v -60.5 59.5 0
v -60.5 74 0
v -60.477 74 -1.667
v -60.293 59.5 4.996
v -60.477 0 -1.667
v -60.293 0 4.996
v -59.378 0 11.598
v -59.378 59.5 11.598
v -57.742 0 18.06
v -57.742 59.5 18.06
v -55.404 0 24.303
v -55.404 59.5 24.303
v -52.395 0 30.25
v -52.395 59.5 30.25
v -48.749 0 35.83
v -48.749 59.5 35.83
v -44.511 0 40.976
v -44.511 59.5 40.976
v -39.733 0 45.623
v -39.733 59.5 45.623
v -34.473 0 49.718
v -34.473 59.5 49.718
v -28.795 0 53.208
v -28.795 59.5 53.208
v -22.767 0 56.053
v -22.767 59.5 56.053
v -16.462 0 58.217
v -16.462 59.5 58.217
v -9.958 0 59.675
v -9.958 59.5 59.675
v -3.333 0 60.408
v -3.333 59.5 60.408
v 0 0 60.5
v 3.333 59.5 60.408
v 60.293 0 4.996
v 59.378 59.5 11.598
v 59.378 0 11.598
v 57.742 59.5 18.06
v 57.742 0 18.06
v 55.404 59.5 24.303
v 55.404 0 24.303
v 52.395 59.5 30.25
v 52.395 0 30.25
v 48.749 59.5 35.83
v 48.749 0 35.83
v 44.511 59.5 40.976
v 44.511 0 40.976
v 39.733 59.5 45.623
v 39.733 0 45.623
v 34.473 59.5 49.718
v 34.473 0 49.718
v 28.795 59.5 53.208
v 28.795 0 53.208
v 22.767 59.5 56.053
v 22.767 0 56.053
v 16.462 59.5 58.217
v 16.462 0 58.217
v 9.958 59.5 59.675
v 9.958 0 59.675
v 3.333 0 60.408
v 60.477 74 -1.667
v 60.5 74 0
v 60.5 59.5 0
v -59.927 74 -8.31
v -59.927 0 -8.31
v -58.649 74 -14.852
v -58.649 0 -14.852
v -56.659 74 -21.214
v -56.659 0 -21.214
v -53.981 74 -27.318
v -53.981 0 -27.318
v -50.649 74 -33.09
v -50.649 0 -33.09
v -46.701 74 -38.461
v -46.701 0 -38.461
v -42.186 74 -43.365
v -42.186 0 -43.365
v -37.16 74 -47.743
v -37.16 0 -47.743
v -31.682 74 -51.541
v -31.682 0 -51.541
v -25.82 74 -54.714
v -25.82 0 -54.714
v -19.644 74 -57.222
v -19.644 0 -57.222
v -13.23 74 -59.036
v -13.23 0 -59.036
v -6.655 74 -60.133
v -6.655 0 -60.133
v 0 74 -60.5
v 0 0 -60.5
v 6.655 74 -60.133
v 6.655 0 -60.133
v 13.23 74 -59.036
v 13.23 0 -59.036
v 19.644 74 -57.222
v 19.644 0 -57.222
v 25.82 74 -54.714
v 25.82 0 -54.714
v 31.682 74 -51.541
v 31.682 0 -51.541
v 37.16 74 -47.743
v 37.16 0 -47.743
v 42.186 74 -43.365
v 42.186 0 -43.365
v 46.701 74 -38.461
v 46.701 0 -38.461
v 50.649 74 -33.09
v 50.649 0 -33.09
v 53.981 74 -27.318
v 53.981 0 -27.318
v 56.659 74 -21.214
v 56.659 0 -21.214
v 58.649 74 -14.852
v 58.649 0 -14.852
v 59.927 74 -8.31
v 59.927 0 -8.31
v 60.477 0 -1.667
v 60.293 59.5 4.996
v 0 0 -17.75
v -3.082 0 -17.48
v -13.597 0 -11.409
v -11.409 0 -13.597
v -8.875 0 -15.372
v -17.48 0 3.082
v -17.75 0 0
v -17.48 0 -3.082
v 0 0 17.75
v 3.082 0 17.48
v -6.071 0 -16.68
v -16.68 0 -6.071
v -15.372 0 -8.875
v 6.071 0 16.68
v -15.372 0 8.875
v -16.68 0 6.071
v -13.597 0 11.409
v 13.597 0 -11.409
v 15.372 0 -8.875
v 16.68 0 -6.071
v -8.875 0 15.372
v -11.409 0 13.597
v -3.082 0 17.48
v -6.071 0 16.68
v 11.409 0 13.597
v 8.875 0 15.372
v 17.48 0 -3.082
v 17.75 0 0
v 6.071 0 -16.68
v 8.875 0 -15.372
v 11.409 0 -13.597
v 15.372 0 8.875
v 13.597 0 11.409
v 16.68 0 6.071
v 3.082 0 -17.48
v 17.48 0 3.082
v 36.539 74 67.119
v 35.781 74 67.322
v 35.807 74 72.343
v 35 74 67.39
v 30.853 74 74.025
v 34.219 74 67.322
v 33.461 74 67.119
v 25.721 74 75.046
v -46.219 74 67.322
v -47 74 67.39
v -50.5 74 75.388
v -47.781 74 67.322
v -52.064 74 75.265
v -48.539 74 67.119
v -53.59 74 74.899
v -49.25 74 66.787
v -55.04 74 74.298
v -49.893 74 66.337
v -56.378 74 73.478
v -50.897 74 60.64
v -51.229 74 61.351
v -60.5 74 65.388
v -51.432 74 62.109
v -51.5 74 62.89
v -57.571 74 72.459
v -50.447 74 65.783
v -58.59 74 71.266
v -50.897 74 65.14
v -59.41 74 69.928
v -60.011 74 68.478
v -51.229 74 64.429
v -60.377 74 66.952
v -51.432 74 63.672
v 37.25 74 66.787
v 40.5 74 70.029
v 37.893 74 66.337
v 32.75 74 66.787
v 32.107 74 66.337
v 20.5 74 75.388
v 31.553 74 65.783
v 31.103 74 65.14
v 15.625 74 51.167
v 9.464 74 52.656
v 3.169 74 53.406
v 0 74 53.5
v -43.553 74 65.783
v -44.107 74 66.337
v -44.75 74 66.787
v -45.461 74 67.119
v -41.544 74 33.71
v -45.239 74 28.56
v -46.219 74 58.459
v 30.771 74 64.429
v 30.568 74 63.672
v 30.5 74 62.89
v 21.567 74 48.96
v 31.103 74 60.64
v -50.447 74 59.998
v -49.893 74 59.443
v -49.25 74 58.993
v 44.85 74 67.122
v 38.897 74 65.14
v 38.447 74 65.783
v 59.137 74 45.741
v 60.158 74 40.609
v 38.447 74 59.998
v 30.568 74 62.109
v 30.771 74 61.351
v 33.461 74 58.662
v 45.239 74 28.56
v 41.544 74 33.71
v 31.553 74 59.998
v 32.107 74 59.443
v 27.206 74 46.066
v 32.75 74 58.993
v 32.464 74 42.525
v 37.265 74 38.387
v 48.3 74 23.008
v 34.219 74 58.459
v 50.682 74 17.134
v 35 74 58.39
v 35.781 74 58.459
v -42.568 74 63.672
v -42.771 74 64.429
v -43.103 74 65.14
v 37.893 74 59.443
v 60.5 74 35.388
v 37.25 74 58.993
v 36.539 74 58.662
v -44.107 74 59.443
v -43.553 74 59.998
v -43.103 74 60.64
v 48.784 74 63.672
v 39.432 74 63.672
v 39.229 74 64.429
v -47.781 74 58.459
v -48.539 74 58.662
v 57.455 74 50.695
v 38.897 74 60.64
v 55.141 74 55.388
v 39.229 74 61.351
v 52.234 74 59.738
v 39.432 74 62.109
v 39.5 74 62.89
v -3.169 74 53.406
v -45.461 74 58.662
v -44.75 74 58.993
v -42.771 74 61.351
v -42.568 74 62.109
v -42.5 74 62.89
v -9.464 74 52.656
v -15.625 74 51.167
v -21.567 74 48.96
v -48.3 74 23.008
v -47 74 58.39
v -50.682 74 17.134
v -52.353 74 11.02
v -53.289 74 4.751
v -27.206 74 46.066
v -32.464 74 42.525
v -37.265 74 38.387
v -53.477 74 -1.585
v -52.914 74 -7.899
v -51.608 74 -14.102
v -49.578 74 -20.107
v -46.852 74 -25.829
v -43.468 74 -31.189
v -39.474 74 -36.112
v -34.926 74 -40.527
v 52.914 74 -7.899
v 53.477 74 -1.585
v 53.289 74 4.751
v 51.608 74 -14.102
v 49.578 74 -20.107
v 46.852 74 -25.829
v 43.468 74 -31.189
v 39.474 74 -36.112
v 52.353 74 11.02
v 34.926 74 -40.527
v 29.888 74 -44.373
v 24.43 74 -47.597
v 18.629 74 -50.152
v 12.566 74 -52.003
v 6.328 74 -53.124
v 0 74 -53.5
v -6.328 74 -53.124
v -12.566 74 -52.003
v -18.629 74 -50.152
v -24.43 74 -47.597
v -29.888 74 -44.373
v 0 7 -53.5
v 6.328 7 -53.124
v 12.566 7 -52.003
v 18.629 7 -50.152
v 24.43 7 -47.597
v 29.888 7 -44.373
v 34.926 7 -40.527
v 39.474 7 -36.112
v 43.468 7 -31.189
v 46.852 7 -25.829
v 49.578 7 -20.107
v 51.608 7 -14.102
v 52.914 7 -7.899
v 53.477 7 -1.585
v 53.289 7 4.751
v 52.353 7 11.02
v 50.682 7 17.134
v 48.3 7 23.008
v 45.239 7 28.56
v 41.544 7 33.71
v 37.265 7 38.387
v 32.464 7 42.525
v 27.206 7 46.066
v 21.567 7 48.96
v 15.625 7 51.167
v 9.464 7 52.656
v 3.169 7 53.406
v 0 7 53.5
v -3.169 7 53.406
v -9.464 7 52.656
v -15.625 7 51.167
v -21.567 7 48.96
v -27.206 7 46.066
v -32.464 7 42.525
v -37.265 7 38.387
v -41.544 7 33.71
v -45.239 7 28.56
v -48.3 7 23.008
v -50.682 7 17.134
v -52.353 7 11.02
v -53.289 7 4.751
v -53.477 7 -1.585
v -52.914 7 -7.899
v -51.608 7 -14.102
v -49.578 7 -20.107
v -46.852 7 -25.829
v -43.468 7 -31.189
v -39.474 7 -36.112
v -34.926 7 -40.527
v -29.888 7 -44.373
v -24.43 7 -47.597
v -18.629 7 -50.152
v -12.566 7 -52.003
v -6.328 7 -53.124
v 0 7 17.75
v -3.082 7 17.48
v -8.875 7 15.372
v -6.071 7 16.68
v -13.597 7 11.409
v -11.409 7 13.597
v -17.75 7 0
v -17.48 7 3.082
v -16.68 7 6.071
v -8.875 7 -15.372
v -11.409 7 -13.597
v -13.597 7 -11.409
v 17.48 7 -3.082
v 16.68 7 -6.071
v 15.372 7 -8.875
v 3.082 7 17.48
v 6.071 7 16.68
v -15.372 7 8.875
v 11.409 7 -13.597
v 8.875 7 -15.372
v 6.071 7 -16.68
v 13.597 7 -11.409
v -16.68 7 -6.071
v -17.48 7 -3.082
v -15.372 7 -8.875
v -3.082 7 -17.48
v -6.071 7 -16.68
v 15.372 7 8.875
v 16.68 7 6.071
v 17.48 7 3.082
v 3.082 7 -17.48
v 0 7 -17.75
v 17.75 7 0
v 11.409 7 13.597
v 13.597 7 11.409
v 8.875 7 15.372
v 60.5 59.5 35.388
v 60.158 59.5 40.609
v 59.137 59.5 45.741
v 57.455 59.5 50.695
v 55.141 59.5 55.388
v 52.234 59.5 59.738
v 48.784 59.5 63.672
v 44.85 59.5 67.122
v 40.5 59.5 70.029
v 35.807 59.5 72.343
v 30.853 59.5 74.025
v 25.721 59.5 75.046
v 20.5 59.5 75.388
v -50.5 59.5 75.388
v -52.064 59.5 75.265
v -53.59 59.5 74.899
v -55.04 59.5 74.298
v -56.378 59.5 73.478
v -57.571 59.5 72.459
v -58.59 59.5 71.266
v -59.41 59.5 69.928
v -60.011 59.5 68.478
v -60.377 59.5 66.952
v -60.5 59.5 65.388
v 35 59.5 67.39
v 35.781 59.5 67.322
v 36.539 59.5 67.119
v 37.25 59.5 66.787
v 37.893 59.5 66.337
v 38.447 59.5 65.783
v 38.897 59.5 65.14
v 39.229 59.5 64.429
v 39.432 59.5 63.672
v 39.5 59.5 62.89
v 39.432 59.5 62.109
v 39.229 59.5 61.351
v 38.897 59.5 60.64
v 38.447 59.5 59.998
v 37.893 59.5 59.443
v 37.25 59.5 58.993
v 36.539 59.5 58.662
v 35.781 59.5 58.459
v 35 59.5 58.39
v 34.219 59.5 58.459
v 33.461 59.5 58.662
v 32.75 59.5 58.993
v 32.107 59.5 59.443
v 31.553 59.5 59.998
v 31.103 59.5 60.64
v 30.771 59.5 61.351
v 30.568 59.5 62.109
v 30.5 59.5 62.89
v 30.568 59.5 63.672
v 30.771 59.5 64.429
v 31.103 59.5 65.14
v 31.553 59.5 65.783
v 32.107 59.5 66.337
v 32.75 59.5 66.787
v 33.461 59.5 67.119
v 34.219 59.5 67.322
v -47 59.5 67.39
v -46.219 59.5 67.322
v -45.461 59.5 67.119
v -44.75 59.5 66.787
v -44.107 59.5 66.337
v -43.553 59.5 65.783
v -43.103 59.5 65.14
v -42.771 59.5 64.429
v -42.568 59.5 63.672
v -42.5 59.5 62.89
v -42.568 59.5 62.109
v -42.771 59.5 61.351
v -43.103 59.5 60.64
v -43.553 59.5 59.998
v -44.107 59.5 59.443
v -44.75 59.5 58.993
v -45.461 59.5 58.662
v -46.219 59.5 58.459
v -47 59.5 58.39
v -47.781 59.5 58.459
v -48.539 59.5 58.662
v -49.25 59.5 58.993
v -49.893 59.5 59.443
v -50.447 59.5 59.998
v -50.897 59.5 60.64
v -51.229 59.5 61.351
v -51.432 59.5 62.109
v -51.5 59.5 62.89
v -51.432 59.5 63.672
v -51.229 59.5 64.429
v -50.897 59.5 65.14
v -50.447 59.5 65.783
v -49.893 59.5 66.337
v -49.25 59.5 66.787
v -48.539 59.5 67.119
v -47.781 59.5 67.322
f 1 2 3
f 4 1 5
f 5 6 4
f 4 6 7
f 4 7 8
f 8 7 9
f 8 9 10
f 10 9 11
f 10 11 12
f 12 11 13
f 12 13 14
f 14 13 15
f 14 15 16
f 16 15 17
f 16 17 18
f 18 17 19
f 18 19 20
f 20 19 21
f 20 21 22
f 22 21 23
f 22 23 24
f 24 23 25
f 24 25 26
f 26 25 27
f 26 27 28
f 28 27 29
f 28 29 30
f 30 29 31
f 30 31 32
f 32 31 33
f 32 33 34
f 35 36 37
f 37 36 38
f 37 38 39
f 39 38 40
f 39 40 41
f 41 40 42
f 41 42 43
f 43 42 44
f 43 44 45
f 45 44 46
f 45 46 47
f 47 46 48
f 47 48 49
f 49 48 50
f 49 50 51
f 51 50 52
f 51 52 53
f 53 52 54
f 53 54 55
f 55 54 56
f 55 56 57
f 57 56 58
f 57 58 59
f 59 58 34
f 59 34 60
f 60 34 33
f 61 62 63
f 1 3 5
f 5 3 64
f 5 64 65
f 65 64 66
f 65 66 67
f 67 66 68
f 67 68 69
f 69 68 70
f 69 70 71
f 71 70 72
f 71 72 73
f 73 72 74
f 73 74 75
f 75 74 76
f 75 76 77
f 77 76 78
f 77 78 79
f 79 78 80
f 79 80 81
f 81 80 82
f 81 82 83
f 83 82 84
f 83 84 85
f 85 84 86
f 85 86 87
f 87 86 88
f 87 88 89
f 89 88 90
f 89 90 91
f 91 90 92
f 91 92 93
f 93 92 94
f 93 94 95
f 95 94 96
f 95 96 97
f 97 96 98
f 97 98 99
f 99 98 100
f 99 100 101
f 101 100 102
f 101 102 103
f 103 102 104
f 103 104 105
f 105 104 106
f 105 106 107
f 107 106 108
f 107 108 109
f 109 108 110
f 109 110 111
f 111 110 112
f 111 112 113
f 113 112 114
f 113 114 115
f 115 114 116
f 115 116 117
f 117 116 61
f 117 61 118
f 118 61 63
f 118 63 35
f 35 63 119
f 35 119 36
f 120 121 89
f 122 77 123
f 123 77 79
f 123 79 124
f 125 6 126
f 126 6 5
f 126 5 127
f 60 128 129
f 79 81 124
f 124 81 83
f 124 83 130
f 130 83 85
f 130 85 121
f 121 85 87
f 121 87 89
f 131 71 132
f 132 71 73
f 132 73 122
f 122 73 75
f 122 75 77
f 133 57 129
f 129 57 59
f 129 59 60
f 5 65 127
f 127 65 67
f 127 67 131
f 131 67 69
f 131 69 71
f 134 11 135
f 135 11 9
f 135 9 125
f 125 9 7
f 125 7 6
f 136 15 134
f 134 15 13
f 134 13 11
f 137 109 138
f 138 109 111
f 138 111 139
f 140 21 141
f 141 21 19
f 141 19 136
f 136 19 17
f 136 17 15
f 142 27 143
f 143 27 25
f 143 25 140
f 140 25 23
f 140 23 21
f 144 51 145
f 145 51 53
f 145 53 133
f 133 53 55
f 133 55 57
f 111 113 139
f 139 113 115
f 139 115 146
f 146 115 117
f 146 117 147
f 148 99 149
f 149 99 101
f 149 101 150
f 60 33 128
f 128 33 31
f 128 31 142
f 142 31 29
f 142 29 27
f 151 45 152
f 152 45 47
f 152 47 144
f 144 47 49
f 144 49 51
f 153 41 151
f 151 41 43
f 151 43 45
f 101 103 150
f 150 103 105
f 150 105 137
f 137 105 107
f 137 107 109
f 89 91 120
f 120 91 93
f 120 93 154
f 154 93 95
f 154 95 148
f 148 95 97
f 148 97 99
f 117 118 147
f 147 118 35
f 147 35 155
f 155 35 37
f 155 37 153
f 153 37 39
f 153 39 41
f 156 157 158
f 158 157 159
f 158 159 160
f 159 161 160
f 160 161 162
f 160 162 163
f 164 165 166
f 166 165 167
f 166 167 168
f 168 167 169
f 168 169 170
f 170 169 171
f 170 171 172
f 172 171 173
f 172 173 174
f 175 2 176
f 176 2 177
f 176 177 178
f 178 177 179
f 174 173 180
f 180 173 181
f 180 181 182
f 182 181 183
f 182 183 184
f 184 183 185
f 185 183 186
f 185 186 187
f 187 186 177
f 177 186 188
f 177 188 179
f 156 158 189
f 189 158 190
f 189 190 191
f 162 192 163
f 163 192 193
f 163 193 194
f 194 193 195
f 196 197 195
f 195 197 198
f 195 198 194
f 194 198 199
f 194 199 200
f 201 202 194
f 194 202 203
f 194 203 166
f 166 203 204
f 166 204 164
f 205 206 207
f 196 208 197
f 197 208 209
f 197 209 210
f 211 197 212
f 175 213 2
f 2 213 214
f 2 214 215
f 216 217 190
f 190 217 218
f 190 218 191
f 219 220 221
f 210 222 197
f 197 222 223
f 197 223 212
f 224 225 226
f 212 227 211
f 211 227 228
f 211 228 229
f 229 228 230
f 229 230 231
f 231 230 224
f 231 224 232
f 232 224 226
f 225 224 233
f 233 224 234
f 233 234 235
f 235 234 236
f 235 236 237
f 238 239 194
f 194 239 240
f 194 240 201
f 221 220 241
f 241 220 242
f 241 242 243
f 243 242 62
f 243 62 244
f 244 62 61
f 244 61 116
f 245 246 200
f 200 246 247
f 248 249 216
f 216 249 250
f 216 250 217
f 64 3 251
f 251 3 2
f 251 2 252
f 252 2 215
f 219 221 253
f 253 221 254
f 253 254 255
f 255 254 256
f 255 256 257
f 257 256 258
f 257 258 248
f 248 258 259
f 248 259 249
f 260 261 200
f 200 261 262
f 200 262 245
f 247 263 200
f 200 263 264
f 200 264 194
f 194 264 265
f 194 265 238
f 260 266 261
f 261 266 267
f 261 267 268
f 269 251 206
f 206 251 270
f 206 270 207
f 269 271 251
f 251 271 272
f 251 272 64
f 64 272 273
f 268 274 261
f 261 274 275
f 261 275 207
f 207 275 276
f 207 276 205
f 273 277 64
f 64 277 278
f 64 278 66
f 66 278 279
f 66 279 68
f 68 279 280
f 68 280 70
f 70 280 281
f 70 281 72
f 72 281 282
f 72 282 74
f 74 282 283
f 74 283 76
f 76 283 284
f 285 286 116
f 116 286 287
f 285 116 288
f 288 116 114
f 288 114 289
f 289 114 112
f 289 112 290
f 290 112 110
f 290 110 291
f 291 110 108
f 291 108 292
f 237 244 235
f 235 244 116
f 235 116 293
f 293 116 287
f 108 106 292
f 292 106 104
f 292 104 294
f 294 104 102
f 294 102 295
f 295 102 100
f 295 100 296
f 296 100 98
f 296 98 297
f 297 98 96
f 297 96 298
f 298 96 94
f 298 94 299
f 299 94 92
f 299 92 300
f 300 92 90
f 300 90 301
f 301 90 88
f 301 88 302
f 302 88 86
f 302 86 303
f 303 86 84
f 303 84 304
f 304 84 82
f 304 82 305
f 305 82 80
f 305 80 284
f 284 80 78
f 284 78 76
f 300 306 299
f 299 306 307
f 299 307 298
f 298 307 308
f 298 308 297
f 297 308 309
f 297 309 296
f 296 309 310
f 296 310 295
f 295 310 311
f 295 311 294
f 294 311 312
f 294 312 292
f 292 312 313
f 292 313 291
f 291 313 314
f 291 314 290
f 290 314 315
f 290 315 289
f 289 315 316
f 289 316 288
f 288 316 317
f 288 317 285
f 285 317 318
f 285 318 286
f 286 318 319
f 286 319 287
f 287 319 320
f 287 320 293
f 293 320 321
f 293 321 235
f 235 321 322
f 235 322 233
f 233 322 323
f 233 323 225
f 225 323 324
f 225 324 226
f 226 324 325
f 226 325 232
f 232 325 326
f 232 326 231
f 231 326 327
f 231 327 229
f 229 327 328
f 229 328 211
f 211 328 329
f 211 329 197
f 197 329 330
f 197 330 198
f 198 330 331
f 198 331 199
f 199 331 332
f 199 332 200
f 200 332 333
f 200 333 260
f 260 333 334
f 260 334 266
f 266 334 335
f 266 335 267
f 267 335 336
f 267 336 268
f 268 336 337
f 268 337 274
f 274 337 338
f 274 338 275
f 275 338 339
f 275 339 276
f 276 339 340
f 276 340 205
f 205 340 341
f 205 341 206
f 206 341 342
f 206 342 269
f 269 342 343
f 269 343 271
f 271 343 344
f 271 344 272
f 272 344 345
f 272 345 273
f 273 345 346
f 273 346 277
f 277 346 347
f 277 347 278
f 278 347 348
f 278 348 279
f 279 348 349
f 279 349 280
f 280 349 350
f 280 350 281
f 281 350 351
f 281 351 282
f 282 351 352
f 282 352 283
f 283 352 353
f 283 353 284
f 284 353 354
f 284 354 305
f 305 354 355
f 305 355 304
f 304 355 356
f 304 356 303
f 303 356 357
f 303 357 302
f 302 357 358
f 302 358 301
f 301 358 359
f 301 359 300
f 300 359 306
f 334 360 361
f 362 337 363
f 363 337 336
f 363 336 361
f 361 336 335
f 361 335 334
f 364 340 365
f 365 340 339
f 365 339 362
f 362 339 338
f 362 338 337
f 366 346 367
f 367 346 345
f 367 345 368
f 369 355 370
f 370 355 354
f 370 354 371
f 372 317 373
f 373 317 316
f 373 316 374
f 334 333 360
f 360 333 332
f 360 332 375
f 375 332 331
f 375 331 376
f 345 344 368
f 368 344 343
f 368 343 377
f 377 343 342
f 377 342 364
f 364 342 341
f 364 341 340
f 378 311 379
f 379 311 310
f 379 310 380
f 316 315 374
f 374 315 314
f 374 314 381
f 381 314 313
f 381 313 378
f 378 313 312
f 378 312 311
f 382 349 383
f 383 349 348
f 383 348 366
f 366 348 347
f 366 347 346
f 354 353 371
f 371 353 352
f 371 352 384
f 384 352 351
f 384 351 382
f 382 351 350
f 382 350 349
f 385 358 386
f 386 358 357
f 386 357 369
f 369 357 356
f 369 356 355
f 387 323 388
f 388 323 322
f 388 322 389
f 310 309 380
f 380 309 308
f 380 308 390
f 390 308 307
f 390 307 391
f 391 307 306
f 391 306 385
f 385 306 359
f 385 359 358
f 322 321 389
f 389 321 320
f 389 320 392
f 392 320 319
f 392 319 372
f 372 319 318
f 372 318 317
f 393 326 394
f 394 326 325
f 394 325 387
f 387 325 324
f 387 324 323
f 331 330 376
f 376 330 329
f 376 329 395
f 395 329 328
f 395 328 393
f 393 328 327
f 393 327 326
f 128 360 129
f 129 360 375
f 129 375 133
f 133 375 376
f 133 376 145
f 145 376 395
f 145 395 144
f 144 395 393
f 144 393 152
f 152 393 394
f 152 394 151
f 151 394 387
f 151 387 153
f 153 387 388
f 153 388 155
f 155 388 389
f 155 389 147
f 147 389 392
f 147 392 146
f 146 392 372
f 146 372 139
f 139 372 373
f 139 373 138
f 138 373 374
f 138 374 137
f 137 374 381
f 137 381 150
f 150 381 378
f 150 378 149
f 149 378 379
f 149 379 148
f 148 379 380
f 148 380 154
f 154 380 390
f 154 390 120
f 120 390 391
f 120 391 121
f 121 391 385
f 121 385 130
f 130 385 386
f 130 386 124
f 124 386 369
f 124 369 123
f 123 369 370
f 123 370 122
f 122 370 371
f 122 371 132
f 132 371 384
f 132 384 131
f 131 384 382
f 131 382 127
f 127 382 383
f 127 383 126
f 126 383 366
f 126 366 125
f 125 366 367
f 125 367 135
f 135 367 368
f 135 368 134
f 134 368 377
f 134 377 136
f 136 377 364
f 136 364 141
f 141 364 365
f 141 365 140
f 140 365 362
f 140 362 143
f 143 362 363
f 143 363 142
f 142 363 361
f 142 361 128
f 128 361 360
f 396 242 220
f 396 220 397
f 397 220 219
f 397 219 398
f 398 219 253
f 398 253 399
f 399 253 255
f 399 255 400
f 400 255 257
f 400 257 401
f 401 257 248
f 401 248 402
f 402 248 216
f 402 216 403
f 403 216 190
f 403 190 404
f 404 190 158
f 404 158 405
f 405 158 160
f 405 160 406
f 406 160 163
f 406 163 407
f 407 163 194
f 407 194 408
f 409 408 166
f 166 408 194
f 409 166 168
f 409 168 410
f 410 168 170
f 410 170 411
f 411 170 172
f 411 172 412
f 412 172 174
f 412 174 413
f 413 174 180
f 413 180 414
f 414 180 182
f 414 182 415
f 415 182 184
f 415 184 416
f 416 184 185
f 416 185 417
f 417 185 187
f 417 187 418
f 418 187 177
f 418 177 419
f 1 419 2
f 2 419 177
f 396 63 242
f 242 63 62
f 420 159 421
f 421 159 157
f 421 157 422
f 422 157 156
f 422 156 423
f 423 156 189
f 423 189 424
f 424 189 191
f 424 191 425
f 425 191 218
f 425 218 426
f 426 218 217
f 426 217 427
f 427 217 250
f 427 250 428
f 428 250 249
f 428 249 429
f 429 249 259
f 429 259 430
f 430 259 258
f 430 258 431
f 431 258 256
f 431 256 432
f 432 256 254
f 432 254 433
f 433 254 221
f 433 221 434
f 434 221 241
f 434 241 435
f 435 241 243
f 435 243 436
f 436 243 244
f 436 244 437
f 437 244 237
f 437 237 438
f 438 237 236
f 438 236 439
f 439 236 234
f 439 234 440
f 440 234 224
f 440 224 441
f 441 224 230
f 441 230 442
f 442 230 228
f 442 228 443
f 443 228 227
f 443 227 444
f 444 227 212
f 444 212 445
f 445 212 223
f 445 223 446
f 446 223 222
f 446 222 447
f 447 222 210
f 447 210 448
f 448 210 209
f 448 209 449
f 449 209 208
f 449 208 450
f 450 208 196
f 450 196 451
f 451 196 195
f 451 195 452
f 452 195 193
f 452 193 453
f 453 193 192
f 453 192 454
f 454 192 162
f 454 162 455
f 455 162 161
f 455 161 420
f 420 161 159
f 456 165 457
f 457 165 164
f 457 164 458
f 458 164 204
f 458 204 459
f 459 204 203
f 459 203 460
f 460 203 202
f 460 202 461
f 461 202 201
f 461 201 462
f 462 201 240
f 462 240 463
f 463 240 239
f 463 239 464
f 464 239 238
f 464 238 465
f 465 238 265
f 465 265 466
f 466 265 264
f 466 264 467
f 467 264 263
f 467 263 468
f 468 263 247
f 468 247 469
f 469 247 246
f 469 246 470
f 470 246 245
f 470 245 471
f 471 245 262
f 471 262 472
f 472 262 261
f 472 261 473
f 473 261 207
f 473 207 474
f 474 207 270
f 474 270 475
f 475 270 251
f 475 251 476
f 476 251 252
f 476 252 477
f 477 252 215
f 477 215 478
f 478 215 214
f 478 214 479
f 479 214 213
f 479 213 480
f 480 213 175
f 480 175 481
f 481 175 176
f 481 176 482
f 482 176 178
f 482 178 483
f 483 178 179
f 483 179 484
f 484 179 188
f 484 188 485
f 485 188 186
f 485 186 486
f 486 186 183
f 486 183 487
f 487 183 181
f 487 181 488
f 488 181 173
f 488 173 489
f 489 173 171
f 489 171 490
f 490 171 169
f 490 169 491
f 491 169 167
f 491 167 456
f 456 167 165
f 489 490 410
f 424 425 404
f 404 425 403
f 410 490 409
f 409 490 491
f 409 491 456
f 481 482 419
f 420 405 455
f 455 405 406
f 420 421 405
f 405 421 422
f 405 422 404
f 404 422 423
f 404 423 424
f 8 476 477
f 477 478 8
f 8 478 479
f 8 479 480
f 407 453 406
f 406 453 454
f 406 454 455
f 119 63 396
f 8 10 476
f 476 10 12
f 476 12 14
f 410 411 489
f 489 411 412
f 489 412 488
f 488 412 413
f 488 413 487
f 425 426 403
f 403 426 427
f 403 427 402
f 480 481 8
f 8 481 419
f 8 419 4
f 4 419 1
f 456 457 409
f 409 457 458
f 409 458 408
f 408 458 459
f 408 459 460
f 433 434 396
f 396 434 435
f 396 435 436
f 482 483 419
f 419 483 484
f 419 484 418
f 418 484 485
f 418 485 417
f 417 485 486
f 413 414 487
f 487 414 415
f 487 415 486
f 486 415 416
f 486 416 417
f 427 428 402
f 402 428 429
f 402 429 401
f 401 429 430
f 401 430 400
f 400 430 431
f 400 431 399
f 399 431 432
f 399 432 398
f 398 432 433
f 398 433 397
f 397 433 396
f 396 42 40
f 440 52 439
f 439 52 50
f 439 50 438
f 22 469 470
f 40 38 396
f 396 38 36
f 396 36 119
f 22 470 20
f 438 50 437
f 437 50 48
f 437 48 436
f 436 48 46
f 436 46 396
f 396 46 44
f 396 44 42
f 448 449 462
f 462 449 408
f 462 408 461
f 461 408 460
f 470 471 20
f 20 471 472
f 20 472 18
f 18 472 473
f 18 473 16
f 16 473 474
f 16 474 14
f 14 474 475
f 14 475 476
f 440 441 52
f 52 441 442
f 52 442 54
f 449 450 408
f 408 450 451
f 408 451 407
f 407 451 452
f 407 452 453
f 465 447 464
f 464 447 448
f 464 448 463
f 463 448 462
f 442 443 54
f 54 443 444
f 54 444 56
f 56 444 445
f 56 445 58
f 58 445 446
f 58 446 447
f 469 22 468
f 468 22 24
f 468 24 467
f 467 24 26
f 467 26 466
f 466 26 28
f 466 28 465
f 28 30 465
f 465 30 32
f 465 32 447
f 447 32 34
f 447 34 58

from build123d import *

# Parameters (mm, degrees)
SKETCH_1_R          = 60.5
EXTRUDE_1_DEPTH     = 7
SKETCH_2_R          = 60.5
SKETCH_2_R_2        = 53.5
EXTRUDE_2_DEPTH     = 67
SKETCH_3_R          = 17.75
CUT_EXTRUDE_1_DEPTH = 54
SKETCH_6_R          = 4.5
EXTRUDE_3_DEPTH     = 14.5


with BuildPart() as part:
    # Эскиз1 → Бобышка-Вытянуть1 (new body)
    with BuildSketch(Plane(origin=(0, 0, 0), x_dir=(1, 0, 0), z_dir=(0, 1, 0))):
        Circle(SKETCH_1_R)
    extrude(amount=EXTRUDE_1_DEPTH)

    # Эскиз2 → Бобышка-Вытянуть2 (add)
    with BuildSketch(Plane(origin=(0, 7, 0), x_dir=(1, 0, 0), z_dir=(0, 1, 0))):
        Circle(SKETCH_2_R)
        Circle(SKETCH_2_R_2, mode=Mode.SUBTRACT)
    extrude(amount=EXTRUDE_2_DEPTH)

    # Эскиз3 → Вырез-Вытянуть1 (cut)
    with BuildSketch(Plane(origin=(0, 7, 0), x_dir=(1, 0, 0), z_dir=(0, 1, 0))):
        Circle(SKETCH_3_R)
    extrude(amount=-CUT_EXTRUDE_1_DEPTH, mode=Mode.SUBTRACT)

    # Эскиз6 → Бобышка-Вытянуть3 (add)
    with BuildSketch(Plane(origin=(0, 74, 0), x_dir=(1, 0, 0), z_dir=(0, 1, 0))):
        with BuildLine():
            ThreePointArc((60.5, 0), (0, -60.5), (-60.5, 0))
            Line((-60.5, 0), (-60.5, -65.387945457))
            ThreePointArc((-60.5, -65.387945457), (-57.571067812, -72.459013269), (-50.5, -75.387945457))
            Line((-50.5, -75.387945457), (20.5, -75.387945457))
            ThreePointArc((20.5, -75.387945457), (48.784271247, -63.672216704), (60.5, -35.387945457))
            Line((60.5, -35.387945457), (60.5, 0))
        make_face()
        with Locations((-47, -62.890262607)):
            Circle(SKETCH_6_R, mode=Mode.SUBTRACT)
        with BuildLine():
            ThreePointArc((39.5, -62.890262607), (35, -67.390262607), (30.5, -62.890262607))
            ThreePointArc((30.5, -62.890262607), (35, -58.390262607), (39.5, -62.890262607))
        make_face(mode=Mode.SUBTRACT)
    extrude(amount=-EXTRUDE_3_DEPTH)


solid = part.part
